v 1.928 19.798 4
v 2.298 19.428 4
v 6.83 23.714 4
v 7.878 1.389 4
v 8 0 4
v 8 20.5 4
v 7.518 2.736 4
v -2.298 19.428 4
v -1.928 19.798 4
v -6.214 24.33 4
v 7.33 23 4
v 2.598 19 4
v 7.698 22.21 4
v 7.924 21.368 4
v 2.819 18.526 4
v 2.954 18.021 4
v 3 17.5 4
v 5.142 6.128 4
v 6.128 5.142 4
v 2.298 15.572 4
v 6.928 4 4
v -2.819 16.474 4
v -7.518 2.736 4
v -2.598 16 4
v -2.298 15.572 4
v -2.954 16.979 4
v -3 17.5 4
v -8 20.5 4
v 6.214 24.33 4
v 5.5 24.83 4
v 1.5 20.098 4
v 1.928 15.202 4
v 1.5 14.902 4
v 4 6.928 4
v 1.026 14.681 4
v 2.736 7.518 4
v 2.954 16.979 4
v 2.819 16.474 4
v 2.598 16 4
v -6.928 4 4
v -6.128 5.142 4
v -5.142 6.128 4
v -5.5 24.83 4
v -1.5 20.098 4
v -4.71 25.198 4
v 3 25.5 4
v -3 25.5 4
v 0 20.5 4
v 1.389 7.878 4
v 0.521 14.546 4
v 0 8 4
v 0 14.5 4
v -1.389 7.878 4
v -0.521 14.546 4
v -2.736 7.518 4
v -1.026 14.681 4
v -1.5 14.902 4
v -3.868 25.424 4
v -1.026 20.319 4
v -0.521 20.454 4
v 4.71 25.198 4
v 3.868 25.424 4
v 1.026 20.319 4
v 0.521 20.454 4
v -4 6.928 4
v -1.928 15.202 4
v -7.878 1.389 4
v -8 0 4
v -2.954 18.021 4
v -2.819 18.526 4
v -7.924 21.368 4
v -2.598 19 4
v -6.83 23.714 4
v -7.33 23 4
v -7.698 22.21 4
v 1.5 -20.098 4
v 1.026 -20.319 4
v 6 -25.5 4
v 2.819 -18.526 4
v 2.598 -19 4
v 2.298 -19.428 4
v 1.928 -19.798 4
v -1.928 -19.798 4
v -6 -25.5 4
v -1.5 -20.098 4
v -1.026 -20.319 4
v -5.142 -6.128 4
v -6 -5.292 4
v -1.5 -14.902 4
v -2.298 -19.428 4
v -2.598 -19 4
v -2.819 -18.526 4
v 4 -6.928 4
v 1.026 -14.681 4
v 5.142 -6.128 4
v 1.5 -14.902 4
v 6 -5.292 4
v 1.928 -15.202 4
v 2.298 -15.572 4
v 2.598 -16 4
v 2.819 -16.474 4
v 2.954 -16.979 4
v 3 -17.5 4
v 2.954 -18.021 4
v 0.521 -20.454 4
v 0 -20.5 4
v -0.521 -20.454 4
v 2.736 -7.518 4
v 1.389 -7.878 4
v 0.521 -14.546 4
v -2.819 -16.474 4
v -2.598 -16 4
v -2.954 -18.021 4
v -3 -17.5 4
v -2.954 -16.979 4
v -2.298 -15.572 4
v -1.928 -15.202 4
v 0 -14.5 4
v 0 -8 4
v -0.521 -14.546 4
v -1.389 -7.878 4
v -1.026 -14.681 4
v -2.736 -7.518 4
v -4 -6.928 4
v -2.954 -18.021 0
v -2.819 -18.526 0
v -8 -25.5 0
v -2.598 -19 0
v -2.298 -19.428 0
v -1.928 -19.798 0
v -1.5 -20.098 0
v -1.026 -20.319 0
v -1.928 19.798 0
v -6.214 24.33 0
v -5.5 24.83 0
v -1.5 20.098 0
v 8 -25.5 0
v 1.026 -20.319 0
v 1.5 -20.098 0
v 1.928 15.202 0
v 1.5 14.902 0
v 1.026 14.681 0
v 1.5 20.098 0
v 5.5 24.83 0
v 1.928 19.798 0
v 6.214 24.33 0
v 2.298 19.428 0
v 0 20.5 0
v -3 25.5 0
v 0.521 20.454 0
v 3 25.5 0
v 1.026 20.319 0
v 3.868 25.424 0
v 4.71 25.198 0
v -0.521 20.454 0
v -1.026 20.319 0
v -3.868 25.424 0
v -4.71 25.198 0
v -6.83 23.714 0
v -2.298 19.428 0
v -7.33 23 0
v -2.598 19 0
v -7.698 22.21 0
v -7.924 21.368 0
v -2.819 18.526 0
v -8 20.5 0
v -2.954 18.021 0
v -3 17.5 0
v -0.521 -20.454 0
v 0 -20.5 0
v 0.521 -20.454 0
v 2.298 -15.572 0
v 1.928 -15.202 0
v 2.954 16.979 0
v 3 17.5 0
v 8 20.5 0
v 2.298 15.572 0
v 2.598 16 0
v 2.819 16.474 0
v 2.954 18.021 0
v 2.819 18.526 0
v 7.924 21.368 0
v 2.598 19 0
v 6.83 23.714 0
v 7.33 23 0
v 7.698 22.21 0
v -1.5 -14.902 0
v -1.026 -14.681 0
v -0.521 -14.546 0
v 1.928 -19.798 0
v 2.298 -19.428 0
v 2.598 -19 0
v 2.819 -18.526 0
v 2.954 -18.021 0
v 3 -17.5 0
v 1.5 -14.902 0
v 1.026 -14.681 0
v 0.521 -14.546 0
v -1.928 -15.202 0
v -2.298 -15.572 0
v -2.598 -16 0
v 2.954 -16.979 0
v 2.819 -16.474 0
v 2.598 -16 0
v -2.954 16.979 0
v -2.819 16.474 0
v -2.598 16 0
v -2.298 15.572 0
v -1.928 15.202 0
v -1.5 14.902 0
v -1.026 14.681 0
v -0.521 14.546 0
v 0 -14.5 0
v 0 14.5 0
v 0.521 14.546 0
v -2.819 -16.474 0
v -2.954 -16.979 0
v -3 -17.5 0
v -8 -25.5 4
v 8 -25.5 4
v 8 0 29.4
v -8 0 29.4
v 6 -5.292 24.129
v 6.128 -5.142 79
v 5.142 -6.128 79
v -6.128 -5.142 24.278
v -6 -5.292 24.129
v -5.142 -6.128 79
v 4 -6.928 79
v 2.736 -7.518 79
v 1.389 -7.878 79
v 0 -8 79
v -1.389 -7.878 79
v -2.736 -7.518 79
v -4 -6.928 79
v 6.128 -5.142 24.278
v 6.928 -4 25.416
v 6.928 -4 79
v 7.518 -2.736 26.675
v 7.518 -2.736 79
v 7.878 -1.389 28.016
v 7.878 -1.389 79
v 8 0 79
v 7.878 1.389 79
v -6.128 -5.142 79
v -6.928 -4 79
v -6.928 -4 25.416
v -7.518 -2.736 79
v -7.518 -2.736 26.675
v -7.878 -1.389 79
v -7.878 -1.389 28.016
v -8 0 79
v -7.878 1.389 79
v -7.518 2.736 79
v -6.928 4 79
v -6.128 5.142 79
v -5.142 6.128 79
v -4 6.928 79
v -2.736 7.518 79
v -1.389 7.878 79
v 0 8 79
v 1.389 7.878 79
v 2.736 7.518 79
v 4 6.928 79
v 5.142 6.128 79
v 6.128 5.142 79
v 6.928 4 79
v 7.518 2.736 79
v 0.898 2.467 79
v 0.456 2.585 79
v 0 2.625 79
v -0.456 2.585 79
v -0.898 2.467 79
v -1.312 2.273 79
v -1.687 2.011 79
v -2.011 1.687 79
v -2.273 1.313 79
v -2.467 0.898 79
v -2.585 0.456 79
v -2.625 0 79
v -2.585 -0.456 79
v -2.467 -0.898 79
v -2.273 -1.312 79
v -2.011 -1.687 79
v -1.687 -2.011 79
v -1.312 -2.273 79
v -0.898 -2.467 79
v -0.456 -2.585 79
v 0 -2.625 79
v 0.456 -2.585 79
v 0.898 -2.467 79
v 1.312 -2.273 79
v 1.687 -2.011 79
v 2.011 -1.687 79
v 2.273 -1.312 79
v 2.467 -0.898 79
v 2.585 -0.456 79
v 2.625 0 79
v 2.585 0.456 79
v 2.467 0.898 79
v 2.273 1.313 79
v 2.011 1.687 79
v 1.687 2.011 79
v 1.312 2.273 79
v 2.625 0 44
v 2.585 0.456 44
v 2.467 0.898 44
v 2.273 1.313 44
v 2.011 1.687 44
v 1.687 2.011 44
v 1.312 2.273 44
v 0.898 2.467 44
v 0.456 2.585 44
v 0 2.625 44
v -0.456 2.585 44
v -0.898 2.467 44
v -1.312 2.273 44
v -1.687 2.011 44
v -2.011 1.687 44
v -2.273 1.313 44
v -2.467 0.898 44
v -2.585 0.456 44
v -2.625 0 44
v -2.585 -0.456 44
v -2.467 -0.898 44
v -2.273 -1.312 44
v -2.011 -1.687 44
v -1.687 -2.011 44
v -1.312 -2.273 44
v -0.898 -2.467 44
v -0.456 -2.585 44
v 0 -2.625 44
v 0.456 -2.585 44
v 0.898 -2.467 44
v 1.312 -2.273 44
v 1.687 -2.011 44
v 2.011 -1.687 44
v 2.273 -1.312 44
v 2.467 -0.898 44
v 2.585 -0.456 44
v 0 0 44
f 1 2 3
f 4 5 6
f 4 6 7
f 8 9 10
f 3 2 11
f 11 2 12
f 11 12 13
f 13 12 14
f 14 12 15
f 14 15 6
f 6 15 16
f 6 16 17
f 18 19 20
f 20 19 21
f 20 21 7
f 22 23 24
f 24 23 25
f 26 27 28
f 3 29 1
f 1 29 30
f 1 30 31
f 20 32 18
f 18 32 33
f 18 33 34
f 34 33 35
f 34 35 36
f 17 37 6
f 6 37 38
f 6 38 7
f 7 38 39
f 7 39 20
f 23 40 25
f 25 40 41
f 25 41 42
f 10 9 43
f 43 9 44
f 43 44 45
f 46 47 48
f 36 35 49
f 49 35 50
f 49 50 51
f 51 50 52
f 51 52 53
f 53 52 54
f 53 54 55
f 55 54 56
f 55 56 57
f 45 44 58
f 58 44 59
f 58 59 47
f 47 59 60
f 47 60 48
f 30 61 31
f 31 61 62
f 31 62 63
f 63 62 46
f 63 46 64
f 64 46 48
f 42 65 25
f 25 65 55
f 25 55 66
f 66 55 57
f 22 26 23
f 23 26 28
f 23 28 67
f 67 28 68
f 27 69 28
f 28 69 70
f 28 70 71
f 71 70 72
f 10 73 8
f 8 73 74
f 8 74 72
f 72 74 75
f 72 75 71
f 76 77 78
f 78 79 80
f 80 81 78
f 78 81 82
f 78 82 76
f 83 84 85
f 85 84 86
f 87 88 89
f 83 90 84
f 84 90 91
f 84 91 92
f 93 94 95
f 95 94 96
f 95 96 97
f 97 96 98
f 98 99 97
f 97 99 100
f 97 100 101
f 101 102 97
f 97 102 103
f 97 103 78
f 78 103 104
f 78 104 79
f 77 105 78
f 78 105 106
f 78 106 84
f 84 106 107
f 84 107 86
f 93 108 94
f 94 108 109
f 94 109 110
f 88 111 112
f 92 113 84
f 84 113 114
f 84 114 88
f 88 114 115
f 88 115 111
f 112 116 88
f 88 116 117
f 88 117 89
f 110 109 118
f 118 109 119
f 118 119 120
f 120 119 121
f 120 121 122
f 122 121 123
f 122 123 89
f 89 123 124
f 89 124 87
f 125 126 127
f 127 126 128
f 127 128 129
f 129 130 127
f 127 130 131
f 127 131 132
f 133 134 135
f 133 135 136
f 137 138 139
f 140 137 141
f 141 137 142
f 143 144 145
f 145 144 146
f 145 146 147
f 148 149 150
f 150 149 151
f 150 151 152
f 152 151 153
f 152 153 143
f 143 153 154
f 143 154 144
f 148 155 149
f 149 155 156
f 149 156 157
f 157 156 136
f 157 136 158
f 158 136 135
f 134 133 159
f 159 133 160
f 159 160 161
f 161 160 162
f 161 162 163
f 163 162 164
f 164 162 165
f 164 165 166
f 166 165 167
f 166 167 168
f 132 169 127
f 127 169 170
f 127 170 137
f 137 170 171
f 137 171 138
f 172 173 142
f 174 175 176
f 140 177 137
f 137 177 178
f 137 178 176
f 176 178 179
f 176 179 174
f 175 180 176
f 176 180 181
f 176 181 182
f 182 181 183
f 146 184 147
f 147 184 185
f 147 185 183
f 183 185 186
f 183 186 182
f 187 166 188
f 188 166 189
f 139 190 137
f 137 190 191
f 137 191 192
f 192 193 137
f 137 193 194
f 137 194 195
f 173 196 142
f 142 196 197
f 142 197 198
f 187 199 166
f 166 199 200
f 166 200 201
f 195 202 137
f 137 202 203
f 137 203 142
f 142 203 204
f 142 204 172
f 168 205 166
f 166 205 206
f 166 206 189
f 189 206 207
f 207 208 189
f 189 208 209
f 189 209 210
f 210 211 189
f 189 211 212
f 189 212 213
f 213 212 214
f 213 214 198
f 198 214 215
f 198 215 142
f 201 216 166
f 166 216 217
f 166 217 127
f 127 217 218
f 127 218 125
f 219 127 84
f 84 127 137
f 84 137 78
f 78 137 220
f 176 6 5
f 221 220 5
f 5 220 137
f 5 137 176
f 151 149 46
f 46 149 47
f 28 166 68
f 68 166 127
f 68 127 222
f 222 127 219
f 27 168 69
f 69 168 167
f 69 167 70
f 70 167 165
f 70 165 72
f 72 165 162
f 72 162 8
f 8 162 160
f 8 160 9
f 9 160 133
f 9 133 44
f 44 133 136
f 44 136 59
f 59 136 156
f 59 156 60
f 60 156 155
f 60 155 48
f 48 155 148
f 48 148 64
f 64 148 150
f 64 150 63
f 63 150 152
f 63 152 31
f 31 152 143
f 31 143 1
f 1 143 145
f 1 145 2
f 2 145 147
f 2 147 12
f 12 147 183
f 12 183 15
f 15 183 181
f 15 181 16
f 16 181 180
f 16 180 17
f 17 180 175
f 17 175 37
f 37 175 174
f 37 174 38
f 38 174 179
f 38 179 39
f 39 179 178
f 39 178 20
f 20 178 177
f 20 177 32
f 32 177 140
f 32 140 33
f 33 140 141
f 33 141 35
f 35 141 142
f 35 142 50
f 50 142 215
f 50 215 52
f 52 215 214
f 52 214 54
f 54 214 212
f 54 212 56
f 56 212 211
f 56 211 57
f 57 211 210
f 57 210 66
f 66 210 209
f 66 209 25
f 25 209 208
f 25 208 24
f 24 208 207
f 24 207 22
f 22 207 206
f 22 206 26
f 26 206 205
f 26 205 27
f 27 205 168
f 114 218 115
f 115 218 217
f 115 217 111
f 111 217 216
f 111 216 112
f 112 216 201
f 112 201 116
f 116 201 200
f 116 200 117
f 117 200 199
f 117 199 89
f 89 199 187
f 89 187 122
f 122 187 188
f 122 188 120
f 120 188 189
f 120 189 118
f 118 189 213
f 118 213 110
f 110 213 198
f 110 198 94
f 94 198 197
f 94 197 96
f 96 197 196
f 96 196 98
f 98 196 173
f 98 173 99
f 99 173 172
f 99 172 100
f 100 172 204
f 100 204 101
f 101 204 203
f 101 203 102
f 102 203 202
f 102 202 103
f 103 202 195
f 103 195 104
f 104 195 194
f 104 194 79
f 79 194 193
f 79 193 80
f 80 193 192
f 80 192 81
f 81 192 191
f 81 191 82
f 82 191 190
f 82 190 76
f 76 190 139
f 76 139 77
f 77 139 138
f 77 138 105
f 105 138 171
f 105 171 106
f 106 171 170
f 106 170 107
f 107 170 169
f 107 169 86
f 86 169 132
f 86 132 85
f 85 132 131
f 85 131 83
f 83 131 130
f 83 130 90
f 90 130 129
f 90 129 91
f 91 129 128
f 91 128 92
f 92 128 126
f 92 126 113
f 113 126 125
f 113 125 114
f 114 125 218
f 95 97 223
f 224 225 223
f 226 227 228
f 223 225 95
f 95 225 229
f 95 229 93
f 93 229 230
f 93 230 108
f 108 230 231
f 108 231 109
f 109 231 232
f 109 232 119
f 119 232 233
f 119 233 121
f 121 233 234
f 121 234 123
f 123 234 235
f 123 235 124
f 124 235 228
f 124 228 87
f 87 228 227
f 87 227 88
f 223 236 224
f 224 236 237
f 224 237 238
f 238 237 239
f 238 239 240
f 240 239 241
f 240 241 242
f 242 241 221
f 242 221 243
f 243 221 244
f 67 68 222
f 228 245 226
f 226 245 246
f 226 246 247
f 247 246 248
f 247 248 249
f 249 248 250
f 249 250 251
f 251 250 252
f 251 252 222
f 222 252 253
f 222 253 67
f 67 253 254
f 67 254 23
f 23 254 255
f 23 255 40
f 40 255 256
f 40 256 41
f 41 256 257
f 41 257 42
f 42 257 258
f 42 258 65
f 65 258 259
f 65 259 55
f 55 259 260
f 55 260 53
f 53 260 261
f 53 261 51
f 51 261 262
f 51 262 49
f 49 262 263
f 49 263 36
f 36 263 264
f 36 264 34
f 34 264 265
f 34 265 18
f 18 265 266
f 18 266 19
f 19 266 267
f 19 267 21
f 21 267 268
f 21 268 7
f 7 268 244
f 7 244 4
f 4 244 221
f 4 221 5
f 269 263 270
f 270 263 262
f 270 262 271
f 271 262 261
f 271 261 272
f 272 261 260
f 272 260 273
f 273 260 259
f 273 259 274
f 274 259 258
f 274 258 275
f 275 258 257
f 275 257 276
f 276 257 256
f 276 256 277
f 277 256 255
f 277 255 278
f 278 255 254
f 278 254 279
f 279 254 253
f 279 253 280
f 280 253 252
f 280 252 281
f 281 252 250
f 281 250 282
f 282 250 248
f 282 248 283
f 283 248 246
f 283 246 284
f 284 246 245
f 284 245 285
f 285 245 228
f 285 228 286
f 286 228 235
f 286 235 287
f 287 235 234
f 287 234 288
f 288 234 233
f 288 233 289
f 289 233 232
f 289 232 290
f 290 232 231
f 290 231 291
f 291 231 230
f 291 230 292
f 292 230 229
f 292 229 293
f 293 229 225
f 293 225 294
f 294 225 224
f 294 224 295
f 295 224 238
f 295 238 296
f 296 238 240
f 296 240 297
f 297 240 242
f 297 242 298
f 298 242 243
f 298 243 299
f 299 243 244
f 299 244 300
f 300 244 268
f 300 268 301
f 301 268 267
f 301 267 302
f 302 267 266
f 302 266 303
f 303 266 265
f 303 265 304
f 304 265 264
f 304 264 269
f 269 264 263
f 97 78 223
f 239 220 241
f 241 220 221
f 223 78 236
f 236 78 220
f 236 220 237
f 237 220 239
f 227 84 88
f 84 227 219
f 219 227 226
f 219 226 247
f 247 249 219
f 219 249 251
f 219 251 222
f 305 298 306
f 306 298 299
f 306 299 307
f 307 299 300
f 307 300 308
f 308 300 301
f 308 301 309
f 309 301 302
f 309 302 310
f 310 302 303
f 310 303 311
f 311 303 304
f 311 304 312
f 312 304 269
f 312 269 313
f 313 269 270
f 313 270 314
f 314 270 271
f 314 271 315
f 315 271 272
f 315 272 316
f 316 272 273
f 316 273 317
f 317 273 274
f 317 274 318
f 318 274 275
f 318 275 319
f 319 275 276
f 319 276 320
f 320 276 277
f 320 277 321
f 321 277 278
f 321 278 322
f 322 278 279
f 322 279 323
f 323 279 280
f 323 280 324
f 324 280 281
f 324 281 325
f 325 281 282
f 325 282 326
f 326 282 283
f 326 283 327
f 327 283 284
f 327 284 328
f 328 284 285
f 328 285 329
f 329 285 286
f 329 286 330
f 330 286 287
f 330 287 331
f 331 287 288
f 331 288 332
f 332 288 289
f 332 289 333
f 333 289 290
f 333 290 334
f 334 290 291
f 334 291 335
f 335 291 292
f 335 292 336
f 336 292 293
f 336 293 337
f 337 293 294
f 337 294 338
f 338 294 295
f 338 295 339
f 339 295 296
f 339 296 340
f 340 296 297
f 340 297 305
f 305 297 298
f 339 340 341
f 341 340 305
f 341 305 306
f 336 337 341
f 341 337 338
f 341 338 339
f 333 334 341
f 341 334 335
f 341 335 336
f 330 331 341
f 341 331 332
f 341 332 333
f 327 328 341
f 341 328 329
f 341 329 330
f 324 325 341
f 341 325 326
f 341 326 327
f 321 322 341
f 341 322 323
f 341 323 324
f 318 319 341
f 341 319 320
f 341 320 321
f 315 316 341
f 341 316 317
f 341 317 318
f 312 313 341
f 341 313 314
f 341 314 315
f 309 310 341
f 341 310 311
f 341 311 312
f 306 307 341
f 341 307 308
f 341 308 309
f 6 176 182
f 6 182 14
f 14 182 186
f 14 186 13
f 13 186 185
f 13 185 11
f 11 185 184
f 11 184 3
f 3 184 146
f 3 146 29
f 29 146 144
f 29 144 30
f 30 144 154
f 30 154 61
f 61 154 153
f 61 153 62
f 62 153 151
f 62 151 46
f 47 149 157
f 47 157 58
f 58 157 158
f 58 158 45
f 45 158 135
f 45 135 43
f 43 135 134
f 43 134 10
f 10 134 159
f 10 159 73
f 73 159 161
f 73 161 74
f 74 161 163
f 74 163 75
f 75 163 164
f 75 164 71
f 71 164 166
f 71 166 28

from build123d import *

# Parameters (mm, degrees)
SKETCH1_W           = 16
SKETCH1_H           = 51
SKETCH1_R           = 3
BOSS_EXTRUDE1_DEPTH = 4
SKETCH2_R           = 8
BOSS_EXTRUDE2_DEPTH = 75
BOSS_EXTRUDE3_DEPTH = 2
SKETCH5_R           = 2.625
CUT_EXTRUDE1_DEPTH  = 35
FILLET1_R           = 5


with BuildPart() as part:
    # Sketch1 → Boss-Extrude1 (new body)
    with BuildSketch(Plane.XY):
        Rectangle(SKETCH1_W, SKETCH1_H)
        with Locations((0, 17.5)):
            Circle(SKETCH1_R, mode=Mode.SUBTRACT)
        with Locations((0, -17.5)):
            Circle(SKETCH1_R, mode=Mode.SUBTRACT)
    extrude(amount=BOSS_EXTRUDE1_DEPTH)

    # Sketch2 → Boss-Extrude2 (add)
    with BuildSketch(Plane.XY.offset(4)):
        Circle(SKETCH2_R)
    extrude(amount=BOSS_EXTRUDE2_DEPTH)

    # Sketch4 → Boss-Extrude3 (add)
    with BuildSketch(Plane(origin=(8, 0, 0), x_dir=(0, 0, -1), z_dir=(1, 0, 0))):
        Polygon((-4, 0), (-29.4, 0), (-4, -25.5), align=None)
    boss_extrude3 = extrude(amount=-BOSS_EXTRUDE3_DEPTH)

    # Mirror1: Boss-Extrude3 across plane
    add(boss_extrude3.mirror(Plane(origin=(0, 0, 0), x_dir=(0, 0, 1), z_dir=(1, 0, 0))))

    # Sketch5 → Cut-Extrude1 (cut)
    with BuildSketch(Plane.XY.offset(79)):
        Circle(SKETCH5_R)
    extrude(amount=-CUT_EXTRUDE1_DEPTH, mode=Mode.SUBTRACT)

    # Fillet1
    fillet1_edges = [part.edges().sort_by_distance(p)[0] for p in [
        (-8, 25.5, 2),
        (8, 25.5, 2),
    ]]
    fillet(fillet1_edges, radius=FILLET1_R)


solid = part.part
